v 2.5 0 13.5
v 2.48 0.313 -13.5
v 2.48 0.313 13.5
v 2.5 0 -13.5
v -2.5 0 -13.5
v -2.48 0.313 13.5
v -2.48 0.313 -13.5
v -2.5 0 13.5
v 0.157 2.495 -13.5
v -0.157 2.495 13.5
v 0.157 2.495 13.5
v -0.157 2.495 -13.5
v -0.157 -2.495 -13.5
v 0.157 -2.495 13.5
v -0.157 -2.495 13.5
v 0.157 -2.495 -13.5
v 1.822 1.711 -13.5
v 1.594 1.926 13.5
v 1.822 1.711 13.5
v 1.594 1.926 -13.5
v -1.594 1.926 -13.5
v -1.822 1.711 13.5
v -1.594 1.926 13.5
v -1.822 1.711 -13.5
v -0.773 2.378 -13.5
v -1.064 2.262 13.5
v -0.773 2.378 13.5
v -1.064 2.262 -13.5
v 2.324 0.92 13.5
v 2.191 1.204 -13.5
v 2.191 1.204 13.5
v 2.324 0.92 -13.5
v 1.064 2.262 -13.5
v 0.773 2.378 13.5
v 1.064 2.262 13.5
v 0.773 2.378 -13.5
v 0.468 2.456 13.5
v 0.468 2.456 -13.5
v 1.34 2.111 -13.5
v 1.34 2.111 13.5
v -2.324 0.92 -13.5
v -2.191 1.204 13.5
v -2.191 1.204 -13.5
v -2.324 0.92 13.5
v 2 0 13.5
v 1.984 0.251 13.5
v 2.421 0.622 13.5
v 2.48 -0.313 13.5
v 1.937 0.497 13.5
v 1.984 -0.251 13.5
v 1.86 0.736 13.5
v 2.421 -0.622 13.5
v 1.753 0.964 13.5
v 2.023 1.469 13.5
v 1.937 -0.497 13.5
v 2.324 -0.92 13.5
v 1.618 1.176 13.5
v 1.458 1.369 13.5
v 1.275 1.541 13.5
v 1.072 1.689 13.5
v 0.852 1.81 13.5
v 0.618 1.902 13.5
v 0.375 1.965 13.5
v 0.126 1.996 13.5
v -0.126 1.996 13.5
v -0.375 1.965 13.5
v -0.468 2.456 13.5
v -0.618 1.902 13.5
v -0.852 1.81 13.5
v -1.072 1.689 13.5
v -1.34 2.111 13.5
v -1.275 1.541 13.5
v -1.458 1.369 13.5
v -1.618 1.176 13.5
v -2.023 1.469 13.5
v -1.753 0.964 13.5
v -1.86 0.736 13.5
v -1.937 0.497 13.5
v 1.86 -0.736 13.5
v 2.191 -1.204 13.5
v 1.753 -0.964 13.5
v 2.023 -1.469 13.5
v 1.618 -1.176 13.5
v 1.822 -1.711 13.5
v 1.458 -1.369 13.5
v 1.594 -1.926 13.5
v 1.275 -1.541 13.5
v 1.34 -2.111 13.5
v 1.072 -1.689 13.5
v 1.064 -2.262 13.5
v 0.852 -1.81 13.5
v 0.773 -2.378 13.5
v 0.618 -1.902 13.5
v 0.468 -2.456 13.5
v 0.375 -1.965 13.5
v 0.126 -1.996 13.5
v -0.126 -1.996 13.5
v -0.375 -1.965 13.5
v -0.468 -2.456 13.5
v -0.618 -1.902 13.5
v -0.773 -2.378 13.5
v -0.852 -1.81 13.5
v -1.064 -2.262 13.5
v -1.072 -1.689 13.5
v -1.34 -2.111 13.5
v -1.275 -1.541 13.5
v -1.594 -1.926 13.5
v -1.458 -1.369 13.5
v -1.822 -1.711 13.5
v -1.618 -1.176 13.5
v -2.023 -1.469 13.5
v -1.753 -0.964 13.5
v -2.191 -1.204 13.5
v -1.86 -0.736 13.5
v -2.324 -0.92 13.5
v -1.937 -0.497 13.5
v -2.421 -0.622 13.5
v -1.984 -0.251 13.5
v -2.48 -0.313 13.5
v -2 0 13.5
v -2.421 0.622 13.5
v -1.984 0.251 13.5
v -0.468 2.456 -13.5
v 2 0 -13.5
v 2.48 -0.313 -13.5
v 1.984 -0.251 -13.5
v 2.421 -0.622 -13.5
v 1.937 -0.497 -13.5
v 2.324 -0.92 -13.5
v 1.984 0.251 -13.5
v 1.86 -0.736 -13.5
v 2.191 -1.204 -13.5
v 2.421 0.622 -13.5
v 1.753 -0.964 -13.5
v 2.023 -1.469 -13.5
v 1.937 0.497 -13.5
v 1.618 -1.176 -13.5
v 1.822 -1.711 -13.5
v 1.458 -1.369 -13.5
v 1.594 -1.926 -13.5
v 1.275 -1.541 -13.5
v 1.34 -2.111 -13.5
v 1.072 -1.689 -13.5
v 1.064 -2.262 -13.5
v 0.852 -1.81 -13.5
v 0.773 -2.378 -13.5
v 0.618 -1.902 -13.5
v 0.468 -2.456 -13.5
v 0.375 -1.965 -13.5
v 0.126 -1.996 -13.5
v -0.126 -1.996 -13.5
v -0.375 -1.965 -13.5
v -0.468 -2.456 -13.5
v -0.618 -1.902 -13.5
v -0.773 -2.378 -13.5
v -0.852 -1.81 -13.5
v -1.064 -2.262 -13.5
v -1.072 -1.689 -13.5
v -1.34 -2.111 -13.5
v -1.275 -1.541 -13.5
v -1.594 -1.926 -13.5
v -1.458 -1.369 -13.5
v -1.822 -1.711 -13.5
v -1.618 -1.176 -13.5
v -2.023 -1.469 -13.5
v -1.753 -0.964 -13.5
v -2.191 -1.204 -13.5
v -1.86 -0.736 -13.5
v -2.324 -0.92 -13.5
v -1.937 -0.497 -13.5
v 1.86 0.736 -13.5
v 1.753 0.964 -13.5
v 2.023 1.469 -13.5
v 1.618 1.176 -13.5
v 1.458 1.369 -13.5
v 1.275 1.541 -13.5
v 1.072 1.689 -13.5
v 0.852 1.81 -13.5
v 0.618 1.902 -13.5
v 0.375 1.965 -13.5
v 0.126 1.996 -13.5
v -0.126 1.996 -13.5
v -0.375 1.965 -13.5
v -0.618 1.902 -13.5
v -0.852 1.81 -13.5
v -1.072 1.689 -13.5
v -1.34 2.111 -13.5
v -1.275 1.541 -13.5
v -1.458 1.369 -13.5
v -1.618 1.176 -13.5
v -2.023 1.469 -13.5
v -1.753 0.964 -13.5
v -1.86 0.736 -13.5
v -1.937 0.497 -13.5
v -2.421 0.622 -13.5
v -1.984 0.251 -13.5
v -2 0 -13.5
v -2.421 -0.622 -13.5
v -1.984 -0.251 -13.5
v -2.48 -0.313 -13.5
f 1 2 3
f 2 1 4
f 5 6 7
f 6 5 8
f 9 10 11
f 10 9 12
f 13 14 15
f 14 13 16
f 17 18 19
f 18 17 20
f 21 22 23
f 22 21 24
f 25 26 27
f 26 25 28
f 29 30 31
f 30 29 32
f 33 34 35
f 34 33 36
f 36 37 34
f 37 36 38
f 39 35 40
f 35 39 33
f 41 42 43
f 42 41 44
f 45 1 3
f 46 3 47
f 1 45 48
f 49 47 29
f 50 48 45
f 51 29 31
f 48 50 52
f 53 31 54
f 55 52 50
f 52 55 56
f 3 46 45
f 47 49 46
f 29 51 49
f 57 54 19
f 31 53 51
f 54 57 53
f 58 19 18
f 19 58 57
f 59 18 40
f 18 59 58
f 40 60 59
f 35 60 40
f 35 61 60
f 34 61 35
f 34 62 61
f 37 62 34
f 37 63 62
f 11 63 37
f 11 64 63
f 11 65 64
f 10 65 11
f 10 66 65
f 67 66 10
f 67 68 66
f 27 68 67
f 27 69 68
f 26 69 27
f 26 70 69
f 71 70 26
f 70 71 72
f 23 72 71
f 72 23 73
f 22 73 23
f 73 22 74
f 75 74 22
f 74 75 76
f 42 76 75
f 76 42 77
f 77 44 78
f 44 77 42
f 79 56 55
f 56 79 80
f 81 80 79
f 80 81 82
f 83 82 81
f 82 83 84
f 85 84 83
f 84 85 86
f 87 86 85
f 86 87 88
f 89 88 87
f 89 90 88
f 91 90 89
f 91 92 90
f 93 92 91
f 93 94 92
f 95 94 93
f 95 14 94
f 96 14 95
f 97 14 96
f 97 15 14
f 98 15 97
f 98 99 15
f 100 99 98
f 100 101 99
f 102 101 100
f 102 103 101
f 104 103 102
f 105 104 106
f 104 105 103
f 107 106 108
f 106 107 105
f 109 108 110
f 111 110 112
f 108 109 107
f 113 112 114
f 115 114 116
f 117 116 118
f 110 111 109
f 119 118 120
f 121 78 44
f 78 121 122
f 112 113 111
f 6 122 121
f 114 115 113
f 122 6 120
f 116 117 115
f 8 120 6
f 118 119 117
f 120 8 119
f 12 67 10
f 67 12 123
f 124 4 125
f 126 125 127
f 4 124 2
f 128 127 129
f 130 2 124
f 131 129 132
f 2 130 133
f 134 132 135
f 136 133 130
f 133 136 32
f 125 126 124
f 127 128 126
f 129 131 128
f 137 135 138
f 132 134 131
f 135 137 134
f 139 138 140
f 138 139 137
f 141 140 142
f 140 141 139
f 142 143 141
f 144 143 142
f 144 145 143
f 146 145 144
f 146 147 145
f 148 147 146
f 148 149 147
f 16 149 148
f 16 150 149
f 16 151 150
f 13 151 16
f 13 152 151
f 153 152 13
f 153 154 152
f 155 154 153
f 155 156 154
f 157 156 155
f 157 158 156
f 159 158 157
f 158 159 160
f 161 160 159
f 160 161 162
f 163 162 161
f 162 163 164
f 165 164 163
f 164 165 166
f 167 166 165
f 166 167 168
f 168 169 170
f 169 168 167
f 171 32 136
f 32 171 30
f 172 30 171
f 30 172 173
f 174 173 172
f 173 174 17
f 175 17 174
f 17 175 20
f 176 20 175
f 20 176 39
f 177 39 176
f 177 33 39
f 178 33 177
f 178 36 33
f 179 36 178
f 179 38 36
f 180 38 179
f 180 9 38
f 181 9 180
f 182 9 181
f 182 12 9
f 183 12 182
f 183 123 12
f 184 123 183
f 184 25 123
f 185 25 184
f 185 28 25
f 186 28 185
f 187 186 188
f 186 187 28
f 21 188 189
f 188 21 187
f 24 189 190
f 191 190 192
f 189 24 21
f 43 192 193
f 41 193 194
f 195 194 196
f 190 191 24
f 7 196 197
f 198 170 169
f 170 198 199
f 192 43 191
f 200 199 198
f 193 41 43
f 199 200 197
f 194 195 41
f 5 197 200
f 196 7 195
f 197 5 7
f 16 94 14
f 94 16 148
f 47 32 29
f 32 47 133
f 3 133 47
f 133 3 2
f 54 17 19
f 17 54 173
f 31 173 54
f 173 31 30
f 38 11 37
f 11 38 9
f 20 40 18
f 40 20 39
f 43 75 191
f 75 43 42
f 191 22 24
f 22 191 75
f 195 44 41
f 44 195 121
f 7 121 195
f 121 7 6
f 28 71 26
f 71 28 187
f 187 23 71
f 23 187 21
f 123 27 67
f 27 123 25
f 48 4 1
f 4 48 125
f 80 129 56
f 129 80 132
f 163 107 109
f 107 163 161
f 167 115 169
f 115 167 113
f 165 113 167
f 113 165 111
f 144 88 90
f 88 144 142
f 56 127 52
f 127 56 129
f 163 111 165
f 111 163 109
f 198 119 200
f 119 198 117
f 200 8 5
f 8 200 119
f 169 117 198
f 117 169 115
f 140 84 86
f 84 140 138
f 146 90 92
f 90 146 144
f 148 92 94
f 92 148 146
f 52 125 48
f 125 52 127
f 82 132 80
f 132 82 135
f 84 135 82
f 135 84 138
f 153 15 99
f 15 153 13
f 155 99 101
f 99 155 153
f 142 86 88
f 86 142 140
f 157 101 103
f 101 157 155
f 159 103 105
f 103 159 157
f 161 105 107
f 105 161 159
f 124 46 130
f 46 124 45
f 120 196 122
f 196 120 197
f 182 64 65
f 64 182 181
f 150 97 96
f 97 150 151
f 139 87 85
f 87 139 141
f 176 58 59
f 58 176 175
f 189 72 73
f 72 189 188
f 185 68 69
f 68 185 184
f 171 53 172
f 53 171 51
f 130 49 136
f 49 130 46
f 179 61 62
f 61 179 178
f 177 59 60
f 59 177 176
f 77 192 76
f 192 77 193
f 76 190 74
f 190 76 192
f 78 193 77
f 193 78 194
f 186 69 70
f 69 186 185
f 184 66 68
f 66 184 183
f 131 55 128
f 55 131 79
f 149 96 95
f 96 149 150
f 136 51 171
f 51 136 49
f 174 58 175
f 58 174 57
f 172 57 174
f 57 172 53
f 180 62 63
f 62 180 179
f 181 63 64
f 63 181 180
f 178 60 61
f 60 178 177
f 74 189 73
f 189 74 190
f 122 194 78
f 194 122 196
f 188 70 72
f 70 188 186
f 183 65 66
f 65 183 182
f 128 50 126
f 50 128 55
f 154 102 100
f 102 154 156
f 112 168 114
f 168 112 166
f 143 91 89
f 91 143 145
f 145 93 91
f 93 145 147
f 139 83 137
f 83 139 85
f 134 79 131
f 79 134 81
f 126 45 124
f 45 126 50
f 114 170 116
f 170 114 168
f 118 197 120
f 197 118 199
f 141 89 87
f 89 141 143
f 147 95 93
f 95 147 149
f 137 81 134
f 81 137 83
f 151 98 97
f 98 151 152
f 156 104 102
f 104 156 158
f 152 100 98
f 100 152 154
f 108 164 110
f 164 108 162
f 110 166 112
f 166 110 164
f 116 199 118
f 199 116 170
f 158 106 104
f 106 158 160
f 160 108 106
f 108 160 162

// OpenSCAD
$fn = 50;


difference() {
	union() {
		translate(v = [0, 0, -13.5000000000]) {
			cylinder(h = 27, r = 2.5000000000);
		}
	}
	union() {
		translate(v = [0, 0, -100.0000000000]) {
			cylinder(h = 200, r = 2.0000000000);
		}
	}
}
